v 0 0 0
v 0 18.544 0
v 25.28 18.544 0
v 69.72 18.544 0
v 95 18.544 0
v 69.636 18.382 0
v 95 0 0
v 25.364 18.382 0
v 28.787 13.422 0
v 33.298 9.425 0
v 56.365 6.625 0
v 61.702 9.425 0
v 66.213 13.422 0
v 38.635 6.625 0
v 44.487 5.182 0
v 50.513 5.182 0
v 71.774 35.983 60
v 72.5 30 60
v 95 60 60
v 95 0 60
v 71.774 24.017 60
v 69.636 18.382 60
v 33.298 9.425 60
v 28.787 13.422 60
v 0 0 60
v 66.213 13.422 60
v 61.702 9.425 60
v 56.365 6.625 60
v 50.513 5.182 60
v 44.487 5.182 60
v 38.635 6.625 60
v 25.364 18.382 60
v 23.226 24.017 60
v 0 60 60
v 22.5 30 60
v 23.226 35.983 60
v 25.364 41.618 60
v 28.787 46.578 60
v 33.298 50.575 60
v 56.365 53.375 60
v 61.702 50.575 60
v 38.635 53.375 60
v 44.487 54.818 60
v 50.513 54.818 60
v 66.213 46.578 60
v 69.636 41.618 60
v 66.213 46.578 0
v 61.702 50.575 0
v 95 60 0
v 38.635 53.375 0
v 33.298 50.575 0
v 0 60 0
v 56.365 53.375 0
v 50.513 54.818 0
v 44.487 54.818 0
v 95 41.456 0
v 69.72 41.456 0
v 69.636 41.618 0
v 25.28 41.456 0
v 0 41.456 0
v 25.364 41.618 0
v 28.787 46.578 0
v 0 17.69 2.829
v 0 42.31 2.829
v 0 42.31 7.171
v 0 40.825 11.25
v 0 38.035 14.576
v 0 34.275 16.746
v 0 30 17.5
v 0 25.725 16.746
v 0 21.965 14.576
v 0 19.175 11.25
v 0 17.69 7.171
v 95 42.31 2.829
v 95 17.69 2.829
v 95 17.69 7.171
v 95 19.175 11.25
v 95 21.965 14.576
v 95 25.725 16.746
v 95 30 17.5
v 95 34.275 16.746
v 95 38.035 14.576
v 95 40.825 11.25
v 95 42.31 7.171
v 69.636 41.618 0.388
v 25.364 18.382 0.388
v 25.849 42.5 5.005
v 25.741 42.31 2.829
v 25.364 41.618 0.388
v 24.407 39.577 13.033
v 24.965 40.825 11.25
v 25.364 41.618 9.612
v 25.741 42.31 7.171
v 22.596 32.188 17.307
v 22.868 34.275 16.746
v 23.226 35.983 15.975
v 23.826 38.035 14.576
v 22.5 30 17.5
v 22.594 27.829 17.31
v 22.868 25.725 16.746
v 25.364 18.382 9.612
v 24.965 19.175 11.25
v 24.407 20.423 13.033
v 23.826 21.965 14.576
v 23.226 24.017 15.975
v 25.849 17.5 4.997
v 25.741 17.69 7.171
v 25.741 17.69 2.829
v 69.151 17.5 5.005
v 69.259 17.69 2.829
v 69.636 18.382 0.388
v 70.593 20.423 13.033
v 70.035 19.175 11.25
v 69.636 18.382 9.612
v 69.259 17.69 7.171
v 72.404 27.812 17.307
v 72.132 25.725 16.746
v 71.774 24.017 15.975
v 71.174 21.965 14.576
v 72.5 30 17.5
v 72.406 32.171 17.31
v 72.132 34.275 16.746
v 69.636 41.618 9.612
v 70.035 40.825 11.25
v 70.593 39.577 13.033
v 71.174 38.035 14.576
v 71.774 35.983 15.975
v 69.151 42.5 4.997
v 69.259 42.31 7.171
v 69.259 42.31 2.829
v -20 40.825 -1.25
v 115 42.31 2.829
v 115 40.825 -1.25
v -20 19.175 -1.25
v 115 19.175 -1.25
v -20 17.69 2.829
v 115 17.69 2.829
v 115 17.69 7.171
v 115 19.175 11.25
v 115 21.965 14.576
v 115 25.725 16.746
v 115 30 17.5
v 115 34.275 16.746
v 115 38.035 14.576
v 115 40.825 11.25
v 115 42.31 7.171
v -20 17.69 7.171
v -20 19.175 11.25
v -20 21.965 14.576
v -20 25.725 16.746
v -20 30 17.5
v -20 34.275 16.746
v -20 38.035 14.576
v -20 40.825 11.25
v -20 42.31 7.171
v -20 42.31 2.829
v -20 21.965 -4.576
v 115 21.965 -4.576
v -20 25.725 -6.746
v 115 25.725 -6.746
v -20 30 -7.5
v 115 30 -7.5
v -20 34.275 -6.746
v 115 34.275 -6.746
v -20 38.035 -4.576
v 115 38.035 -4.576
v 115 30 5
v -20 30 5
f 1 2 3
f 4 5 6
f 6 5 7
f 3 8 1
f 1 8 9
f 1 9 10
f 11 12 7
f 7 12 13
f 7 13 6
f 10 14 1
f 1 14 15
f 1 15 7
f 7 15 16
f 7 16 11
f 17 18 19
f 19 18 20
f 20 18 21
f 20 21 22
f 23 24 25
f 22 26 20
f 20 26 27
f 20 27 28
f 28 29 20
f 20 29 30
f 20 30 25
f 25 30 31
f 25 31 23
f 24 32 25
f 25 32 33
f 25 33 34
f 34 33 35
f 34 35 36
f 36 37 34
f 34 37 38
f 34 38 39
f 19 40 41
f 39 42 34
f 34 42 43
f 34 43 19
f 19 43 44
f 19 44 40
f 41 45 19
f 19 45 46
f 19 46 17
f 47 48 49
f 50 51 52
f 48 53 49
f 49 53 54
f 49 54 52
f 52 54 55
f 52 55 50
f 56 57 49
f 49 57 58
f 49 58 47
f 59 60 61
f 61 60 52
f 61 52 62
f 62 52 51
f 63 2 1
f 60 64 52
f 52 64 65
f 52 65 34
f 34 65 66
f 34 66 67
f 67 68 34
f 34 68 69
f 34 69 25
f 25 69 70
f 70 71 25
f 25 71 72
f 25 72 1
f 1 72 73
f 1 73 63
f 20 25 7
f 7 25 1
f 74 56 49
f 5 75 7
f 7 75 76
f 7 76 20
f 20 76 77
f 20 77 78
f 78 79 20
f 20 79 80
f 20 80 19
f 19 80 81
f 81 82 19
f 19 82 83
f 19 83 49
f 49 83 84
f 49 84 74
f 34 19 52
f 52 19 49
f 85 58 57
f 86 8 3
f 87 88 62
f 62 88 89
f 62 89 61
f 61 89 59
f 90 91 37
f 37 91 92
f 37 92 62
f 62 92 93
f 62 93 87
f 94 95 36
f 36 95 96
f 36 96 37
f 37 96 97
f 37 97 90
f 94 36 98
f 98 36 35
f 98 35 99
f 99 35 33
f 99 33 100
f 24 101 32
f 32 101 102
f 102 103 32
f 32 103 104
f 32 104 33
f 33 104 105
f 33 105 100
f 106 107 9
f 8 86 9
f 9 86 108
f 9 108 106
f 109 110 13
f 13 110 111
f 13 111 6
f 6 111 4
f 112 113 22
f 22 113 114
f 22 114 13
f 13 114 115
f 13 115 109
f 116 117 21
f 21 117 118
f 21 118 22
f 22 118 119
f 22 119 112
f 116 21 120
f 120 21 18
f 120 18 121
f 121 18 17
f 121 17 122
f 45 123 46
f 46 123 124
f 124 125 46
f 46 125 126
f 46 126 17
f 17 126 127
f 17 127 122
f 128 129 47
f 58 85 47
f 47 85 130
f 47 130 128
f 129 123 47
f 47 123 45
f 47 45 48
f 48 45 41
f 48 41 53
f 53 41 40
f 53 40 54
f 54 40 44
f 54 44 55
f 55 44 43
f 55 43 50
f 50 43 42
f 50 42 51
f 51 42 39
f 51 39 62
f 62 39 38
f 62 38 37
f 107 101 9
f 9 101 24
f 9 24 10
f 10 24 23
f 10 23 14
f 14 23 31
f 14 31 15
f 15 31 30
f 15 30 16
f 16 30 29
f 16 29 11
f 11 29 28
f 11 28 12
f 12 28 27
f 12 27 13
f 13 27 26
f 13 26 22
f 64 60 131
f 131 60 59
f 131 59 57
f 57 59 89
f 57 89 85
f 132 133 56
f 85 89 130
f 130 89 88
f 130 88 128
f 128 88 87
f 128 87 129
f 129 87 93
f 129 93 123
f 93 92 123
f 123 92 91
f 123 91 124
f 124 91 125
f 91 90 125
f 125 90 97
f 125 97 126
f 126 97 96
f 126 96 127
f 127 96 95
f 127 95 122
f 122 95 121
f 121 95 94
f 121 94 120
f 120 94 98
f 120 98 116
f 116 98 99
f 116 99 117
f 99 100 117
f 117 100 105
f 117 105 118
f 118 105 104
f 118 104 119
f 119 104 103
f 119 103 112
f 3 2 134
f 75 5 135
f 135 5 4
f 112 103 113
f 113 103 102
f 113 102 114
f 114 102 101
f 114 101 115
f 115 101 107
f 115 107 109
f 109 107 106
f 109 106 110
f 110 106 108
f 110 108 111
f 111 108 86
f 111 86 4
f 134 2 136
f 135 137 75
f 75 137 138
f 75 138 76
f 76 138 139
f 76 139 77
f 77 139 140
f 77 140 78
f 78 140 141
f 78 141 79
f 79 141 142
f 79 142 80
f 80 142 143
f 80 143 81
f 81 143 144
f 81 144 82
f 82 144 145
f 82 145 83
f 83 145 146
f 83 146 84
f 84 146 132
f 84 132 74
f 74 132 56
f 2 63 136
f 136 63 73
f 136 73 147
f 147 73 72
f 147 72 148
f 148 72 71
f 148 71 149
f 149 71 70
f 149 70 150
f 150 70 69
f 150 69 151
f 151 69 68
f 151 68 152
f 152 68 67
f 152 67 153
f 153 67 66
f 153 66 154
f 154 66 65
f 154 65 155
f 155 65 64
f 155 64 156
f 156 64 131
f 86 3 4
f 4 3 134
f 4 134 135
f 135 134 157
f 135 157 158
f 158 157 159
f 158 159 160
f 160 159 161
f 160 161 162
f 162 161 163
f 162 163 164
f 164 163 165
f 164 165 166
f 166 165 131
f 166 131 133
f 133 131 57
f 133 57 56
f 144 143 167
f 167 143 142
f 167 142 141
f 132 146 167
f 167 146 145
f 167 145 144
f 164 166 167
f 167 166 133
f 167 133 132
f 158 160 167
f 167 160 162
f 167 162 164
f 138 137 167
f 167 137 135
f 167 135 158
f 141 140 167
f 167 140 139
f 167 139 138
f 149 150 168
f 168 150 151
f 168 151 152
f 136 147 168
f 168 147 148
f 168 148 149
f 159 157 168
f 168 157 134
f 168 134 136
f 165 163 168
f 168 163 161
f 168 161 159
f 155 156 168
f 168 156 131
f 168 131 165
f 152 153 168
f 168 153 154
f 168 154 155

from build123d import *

# Parameters (mm, degrees)
SKETCH1_W                = 95
SKETCH1_H                = 60
SKETCH1_R                = 25
BOSS_EXTRUDE1_DEPTH      = 60
SKETCH2_R                = 12.5
BOSS_EXTRUDE2_DEPTH      = 20
BOSS_EXTRUDE2_DEPTH_BACK = 115


with BuildPart() as part:
    # Sketch1 → Boss-Extrude1 (new body)
    with BuildSketch(Plane.XY):
        with Locations((47.5, 30)):
            Rectangle(SKETCH1_W, SKETCH1_H)
        with Locations((47.5, 30)):
            Circle(SKETCH1_R, mode=Mode.SUBTRACT)
    extrude(amount=BOSS_EXTRUDE1_DEPTH)

    # Sketch2 → Boss-Extrude2 (add, two sides)
    with BuildSketch(Plane.ZY) as boss_extrude2_sk:
        with Locations((5, 30)):
            Circle(SKETCH2_R)
    extrude(amount=BOSS_EXTRUDE2_DEPTH)
    extrude(boss_extrude2_sk.sketch, amount=-BOSS_EXTRUDE2_DEPTH_BACK)


solid = part.part
